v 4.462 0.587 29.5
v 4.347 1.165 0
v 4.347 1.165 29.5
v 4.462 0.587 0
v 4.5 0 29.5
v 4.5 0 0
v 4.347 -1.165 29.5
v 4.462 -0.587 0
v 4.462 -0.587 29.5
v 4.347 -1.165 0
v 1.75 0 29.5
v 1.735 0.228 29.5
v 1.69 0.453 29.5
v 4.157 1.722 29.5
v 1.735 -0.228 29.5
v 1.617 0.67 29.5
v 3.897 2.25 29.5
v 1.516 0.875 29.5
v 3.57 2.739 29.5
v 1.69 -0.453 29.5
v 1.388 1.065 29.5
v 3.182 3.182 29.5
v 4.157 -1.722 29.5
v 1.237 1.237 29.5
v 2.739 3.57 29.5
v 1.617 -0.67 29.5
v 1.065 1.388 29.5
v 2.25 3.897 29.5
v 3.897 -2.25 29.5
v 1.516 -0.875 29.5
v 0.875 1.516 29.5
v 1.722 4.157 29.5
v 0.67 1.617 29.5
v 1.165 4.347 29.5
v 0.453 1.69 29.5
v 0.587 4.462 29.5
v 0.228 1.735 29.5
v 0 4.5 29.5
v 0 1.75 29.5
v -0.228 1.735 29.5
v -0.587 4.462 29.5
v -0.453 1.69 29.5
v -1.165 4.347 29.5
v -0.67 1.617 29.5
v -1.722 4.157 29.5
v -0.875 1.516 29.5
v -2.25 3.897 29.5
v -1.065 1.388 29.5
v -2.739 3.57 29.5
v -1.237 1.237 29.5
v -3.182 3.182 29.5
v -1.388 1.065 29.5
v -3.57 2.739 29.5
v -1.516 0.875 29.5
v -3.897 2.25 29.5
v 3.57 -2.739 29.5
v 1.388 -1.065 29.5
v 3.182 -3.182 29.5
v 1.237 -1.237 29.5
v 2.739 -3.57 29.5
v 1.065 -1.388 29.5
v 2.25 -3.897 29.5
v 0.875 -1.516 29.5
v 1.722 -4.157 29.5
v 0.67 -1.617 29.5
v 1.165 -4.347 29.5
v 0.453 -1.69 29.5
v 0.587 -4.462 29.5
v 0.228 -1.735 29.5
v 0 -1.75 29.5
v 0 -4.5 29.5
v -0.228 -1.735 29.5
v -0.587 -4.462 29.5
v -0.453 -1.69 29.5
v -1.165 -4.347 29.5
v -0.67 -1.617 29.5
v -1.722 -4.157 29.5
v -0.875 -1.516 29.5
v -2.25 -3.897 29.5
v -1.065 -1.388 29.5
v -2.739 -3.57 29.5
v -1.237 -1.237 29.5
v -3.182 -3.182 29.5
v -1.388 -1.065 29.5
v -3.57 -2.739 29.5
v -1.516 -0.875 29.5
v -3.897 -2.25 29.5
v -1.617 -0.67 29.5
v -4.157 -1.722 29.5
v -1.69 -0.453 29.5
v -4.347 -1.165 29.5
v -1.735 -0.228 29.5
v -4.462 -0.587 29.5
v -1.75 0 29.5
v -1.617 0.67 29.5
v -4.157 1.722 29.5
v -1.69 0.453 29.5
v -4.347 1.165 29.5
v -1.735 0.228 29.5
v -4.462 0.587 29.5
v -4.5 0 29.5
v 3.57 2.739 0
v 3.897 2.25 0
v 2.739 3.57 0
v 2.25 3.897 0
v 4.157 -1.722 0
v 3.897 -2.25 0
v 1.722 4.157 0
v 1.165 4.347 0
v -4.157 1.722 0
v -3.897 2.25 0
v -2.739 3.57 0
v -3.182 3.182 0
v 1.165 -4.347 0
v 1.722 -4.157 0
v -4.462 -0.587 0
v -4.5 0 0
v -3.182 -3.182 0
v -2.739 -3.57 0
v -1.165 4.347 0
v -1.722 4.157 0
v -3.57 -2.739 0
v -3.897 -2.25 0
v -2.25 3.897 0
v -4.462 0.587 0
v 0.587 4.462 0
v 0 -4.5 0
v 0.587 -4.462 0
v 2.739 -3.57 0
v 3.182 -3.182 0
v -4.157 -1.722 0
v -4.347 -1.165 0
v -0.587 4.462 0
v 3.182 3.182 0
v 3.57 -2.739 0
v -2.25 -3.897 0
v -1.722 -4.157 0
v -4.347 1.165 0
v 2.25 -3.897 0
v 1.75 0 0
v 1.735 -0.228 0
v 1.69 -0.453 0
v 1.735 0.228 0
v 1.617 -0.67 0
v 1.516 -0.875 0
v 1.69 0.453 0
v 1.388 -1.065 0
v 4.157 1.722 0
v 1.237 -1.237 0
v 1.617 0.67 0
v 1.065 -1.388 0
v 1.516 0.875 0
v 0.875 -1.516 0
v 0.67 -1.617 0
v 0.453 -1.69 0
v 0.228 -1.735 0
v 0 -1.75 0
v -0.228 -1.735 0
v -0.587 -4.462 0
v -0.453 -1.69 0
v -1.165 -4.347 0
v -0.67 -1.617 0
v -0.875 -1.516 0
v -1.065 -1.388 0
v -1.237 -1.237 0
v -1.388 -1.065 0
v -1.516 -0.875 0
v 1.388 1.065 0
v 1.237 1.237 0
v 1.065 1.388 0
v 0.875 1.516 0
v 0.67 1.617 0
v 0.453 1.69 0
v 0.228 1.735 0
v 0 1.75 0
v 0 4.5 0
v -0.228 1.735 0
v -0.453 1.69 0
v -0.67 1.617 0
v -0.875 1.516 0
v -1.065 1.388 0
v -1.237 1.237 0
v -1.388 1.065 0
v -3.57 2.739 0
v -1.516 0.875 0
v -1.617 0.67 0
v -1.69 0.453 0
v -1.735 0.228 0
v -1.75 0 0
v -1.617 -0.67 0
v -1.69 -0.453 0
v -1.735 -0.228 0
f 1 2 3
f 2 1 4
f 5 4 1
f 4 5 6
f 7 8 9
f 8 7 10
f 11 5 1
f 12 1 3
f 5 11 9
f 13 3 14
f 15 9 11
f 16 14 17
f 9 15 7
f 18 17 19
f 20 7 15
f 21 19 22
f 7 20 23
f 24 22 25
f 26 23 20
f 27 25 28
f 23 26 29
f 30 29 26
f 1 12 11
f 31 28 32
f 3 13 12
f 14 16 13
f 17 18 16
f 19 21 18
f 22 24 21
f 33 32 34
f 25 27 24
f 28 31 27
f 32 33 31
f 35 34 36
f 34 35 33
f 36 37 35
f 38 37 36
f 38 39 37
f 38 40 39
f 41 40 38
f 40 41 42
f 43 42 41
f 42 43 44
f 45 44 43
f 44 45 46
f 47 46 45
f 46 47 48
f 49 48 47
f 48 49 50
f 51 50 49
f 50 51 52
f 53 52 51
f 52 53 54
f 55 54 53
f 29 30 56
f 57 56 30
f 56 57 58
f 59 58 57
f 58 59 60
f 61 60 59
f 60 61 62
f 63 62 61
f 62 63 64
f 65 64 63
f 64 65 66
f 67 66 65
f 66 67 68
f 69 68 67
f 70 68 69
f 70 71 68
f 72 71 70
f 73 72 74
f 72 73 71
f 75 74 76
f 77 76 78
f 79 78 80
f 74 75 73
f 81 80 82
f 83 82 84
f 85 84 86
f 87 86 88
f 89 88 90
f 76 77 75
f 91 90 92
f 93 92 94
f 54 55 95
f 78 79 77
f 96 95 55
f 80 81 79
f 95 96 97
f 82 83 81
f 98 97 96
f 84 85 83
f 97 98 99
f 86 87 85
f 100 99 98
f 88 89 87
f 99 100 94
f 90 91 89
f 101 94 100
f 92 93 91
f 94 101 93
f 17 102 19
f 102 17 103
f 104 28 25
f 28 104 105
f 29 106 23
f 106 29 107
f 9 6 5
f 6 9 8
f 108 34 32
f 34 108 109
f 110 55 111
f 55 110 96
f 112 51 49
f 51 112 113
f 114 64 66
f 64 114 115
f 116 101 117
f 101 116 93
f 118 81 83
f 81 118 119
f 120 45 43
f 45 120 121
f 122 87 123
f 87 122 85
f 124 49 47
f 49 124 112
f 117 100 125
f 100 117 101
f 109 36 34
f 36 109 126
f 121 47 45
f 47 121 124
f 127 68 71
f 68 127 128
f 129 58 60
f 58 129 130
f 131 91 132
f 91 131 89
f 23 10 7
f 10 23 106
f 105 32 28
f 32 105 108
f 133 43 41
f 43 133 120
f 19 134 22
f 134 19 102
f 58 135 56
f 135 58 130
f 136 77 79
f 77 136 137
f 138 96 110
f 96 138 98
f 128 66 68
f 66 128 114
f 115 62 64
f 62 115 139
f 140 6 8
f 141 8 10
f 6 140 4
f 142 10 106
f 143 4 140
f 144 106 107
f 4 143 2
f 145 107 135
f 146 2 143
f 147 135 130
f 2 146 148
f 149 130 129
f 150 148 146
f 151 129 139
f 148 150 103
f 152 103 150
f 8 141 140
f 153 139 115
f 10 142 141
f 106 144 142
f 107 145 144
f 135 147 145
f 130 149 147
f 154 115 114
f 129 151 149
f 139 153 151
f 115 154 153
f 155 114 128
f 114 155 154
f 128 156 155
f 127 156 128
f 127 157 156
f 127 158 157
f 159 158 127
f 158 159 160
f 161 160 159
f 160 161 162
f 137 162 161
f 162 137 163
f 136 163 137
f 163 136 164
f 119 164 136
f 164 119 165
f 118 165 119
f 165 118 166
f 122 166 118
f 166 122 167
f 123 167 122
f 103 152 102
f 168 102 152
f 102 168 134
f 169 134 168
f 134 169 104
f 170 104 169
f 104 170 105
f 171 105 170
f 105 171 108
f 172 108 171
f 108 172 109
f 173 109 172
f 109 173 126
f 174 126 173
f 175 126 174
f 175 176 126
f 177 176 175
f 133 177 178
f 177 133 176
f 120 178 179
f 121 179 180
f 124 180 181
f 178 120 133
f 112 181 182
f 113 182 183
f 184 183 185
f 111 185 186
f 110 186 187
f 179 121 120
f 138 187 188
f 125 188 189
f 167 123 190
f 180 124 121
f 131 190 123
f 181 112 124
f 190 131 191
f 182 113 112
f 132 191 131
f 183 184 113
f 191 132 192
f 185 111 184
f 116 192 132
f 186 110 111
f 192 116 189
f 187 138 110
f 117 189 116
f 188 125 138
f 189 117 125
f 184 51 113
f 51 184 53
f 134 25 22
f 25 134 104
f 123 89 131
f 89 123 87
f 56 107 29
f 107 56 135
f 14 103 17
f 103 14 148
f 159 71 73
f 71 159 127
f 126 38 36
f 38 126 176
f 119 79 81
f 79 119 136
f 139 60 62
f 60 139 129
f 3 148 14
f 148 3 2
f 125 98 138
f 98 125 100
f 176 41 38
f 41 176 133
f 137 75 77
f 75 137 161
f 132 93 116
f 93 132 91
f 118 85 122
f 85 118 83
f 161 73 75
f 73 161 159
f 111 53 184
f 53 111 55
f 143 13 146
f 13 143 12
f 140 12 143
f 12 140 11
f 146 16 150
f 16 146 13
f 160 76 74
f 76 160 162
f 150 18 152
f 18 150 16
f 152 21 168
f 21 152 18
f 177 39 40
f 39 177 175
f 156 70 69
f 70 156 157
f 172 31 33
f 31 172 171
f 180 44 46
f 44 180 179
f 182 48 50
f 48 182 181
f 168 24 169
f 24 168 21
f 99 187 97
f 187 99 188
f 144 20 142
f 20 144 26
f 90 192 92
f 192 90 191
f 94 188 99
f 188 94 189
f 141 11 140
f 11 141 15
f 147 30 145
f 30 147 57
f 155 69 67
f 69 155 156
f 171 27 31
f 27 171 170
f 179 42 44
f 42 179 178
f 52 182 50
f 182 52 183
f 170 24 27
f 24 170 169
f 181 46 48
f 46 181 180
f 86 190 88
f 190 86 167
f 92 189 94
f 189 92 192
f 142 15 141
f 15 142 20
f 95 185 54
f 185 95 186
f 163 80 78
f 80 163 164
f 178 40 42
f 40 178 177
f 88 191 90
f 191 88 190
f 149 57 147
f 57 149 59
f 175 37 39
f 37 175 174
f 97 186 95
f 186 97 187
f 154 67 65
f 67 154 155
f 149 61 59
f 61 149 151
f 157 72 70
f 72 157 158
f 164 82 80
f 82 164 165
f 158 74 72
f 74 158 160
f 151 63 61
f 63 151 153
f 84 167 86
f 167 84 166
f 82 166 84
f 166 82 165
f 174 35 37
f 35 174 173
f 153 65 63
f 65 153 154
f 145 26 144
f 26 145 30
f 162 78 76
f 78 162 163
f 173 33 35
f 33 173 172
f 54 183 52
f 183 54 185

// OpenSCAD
// Gen-CS — frame standoff tube between stator and an endbell, on each M3 frame rod (outside rotor OD).
// Print x4. Height = frame_standoff_h (rotor + steel + hub + collar + running clearance).
include <parameters.scad>;
$fn = 48;
difference() {
    cylinder(d=standoff_od, h=frame_standoff_h);
    translate([0, 0, -0.1]) cylinder(d=m3_clear, h=frame_standoff_h + 0.2);
}
